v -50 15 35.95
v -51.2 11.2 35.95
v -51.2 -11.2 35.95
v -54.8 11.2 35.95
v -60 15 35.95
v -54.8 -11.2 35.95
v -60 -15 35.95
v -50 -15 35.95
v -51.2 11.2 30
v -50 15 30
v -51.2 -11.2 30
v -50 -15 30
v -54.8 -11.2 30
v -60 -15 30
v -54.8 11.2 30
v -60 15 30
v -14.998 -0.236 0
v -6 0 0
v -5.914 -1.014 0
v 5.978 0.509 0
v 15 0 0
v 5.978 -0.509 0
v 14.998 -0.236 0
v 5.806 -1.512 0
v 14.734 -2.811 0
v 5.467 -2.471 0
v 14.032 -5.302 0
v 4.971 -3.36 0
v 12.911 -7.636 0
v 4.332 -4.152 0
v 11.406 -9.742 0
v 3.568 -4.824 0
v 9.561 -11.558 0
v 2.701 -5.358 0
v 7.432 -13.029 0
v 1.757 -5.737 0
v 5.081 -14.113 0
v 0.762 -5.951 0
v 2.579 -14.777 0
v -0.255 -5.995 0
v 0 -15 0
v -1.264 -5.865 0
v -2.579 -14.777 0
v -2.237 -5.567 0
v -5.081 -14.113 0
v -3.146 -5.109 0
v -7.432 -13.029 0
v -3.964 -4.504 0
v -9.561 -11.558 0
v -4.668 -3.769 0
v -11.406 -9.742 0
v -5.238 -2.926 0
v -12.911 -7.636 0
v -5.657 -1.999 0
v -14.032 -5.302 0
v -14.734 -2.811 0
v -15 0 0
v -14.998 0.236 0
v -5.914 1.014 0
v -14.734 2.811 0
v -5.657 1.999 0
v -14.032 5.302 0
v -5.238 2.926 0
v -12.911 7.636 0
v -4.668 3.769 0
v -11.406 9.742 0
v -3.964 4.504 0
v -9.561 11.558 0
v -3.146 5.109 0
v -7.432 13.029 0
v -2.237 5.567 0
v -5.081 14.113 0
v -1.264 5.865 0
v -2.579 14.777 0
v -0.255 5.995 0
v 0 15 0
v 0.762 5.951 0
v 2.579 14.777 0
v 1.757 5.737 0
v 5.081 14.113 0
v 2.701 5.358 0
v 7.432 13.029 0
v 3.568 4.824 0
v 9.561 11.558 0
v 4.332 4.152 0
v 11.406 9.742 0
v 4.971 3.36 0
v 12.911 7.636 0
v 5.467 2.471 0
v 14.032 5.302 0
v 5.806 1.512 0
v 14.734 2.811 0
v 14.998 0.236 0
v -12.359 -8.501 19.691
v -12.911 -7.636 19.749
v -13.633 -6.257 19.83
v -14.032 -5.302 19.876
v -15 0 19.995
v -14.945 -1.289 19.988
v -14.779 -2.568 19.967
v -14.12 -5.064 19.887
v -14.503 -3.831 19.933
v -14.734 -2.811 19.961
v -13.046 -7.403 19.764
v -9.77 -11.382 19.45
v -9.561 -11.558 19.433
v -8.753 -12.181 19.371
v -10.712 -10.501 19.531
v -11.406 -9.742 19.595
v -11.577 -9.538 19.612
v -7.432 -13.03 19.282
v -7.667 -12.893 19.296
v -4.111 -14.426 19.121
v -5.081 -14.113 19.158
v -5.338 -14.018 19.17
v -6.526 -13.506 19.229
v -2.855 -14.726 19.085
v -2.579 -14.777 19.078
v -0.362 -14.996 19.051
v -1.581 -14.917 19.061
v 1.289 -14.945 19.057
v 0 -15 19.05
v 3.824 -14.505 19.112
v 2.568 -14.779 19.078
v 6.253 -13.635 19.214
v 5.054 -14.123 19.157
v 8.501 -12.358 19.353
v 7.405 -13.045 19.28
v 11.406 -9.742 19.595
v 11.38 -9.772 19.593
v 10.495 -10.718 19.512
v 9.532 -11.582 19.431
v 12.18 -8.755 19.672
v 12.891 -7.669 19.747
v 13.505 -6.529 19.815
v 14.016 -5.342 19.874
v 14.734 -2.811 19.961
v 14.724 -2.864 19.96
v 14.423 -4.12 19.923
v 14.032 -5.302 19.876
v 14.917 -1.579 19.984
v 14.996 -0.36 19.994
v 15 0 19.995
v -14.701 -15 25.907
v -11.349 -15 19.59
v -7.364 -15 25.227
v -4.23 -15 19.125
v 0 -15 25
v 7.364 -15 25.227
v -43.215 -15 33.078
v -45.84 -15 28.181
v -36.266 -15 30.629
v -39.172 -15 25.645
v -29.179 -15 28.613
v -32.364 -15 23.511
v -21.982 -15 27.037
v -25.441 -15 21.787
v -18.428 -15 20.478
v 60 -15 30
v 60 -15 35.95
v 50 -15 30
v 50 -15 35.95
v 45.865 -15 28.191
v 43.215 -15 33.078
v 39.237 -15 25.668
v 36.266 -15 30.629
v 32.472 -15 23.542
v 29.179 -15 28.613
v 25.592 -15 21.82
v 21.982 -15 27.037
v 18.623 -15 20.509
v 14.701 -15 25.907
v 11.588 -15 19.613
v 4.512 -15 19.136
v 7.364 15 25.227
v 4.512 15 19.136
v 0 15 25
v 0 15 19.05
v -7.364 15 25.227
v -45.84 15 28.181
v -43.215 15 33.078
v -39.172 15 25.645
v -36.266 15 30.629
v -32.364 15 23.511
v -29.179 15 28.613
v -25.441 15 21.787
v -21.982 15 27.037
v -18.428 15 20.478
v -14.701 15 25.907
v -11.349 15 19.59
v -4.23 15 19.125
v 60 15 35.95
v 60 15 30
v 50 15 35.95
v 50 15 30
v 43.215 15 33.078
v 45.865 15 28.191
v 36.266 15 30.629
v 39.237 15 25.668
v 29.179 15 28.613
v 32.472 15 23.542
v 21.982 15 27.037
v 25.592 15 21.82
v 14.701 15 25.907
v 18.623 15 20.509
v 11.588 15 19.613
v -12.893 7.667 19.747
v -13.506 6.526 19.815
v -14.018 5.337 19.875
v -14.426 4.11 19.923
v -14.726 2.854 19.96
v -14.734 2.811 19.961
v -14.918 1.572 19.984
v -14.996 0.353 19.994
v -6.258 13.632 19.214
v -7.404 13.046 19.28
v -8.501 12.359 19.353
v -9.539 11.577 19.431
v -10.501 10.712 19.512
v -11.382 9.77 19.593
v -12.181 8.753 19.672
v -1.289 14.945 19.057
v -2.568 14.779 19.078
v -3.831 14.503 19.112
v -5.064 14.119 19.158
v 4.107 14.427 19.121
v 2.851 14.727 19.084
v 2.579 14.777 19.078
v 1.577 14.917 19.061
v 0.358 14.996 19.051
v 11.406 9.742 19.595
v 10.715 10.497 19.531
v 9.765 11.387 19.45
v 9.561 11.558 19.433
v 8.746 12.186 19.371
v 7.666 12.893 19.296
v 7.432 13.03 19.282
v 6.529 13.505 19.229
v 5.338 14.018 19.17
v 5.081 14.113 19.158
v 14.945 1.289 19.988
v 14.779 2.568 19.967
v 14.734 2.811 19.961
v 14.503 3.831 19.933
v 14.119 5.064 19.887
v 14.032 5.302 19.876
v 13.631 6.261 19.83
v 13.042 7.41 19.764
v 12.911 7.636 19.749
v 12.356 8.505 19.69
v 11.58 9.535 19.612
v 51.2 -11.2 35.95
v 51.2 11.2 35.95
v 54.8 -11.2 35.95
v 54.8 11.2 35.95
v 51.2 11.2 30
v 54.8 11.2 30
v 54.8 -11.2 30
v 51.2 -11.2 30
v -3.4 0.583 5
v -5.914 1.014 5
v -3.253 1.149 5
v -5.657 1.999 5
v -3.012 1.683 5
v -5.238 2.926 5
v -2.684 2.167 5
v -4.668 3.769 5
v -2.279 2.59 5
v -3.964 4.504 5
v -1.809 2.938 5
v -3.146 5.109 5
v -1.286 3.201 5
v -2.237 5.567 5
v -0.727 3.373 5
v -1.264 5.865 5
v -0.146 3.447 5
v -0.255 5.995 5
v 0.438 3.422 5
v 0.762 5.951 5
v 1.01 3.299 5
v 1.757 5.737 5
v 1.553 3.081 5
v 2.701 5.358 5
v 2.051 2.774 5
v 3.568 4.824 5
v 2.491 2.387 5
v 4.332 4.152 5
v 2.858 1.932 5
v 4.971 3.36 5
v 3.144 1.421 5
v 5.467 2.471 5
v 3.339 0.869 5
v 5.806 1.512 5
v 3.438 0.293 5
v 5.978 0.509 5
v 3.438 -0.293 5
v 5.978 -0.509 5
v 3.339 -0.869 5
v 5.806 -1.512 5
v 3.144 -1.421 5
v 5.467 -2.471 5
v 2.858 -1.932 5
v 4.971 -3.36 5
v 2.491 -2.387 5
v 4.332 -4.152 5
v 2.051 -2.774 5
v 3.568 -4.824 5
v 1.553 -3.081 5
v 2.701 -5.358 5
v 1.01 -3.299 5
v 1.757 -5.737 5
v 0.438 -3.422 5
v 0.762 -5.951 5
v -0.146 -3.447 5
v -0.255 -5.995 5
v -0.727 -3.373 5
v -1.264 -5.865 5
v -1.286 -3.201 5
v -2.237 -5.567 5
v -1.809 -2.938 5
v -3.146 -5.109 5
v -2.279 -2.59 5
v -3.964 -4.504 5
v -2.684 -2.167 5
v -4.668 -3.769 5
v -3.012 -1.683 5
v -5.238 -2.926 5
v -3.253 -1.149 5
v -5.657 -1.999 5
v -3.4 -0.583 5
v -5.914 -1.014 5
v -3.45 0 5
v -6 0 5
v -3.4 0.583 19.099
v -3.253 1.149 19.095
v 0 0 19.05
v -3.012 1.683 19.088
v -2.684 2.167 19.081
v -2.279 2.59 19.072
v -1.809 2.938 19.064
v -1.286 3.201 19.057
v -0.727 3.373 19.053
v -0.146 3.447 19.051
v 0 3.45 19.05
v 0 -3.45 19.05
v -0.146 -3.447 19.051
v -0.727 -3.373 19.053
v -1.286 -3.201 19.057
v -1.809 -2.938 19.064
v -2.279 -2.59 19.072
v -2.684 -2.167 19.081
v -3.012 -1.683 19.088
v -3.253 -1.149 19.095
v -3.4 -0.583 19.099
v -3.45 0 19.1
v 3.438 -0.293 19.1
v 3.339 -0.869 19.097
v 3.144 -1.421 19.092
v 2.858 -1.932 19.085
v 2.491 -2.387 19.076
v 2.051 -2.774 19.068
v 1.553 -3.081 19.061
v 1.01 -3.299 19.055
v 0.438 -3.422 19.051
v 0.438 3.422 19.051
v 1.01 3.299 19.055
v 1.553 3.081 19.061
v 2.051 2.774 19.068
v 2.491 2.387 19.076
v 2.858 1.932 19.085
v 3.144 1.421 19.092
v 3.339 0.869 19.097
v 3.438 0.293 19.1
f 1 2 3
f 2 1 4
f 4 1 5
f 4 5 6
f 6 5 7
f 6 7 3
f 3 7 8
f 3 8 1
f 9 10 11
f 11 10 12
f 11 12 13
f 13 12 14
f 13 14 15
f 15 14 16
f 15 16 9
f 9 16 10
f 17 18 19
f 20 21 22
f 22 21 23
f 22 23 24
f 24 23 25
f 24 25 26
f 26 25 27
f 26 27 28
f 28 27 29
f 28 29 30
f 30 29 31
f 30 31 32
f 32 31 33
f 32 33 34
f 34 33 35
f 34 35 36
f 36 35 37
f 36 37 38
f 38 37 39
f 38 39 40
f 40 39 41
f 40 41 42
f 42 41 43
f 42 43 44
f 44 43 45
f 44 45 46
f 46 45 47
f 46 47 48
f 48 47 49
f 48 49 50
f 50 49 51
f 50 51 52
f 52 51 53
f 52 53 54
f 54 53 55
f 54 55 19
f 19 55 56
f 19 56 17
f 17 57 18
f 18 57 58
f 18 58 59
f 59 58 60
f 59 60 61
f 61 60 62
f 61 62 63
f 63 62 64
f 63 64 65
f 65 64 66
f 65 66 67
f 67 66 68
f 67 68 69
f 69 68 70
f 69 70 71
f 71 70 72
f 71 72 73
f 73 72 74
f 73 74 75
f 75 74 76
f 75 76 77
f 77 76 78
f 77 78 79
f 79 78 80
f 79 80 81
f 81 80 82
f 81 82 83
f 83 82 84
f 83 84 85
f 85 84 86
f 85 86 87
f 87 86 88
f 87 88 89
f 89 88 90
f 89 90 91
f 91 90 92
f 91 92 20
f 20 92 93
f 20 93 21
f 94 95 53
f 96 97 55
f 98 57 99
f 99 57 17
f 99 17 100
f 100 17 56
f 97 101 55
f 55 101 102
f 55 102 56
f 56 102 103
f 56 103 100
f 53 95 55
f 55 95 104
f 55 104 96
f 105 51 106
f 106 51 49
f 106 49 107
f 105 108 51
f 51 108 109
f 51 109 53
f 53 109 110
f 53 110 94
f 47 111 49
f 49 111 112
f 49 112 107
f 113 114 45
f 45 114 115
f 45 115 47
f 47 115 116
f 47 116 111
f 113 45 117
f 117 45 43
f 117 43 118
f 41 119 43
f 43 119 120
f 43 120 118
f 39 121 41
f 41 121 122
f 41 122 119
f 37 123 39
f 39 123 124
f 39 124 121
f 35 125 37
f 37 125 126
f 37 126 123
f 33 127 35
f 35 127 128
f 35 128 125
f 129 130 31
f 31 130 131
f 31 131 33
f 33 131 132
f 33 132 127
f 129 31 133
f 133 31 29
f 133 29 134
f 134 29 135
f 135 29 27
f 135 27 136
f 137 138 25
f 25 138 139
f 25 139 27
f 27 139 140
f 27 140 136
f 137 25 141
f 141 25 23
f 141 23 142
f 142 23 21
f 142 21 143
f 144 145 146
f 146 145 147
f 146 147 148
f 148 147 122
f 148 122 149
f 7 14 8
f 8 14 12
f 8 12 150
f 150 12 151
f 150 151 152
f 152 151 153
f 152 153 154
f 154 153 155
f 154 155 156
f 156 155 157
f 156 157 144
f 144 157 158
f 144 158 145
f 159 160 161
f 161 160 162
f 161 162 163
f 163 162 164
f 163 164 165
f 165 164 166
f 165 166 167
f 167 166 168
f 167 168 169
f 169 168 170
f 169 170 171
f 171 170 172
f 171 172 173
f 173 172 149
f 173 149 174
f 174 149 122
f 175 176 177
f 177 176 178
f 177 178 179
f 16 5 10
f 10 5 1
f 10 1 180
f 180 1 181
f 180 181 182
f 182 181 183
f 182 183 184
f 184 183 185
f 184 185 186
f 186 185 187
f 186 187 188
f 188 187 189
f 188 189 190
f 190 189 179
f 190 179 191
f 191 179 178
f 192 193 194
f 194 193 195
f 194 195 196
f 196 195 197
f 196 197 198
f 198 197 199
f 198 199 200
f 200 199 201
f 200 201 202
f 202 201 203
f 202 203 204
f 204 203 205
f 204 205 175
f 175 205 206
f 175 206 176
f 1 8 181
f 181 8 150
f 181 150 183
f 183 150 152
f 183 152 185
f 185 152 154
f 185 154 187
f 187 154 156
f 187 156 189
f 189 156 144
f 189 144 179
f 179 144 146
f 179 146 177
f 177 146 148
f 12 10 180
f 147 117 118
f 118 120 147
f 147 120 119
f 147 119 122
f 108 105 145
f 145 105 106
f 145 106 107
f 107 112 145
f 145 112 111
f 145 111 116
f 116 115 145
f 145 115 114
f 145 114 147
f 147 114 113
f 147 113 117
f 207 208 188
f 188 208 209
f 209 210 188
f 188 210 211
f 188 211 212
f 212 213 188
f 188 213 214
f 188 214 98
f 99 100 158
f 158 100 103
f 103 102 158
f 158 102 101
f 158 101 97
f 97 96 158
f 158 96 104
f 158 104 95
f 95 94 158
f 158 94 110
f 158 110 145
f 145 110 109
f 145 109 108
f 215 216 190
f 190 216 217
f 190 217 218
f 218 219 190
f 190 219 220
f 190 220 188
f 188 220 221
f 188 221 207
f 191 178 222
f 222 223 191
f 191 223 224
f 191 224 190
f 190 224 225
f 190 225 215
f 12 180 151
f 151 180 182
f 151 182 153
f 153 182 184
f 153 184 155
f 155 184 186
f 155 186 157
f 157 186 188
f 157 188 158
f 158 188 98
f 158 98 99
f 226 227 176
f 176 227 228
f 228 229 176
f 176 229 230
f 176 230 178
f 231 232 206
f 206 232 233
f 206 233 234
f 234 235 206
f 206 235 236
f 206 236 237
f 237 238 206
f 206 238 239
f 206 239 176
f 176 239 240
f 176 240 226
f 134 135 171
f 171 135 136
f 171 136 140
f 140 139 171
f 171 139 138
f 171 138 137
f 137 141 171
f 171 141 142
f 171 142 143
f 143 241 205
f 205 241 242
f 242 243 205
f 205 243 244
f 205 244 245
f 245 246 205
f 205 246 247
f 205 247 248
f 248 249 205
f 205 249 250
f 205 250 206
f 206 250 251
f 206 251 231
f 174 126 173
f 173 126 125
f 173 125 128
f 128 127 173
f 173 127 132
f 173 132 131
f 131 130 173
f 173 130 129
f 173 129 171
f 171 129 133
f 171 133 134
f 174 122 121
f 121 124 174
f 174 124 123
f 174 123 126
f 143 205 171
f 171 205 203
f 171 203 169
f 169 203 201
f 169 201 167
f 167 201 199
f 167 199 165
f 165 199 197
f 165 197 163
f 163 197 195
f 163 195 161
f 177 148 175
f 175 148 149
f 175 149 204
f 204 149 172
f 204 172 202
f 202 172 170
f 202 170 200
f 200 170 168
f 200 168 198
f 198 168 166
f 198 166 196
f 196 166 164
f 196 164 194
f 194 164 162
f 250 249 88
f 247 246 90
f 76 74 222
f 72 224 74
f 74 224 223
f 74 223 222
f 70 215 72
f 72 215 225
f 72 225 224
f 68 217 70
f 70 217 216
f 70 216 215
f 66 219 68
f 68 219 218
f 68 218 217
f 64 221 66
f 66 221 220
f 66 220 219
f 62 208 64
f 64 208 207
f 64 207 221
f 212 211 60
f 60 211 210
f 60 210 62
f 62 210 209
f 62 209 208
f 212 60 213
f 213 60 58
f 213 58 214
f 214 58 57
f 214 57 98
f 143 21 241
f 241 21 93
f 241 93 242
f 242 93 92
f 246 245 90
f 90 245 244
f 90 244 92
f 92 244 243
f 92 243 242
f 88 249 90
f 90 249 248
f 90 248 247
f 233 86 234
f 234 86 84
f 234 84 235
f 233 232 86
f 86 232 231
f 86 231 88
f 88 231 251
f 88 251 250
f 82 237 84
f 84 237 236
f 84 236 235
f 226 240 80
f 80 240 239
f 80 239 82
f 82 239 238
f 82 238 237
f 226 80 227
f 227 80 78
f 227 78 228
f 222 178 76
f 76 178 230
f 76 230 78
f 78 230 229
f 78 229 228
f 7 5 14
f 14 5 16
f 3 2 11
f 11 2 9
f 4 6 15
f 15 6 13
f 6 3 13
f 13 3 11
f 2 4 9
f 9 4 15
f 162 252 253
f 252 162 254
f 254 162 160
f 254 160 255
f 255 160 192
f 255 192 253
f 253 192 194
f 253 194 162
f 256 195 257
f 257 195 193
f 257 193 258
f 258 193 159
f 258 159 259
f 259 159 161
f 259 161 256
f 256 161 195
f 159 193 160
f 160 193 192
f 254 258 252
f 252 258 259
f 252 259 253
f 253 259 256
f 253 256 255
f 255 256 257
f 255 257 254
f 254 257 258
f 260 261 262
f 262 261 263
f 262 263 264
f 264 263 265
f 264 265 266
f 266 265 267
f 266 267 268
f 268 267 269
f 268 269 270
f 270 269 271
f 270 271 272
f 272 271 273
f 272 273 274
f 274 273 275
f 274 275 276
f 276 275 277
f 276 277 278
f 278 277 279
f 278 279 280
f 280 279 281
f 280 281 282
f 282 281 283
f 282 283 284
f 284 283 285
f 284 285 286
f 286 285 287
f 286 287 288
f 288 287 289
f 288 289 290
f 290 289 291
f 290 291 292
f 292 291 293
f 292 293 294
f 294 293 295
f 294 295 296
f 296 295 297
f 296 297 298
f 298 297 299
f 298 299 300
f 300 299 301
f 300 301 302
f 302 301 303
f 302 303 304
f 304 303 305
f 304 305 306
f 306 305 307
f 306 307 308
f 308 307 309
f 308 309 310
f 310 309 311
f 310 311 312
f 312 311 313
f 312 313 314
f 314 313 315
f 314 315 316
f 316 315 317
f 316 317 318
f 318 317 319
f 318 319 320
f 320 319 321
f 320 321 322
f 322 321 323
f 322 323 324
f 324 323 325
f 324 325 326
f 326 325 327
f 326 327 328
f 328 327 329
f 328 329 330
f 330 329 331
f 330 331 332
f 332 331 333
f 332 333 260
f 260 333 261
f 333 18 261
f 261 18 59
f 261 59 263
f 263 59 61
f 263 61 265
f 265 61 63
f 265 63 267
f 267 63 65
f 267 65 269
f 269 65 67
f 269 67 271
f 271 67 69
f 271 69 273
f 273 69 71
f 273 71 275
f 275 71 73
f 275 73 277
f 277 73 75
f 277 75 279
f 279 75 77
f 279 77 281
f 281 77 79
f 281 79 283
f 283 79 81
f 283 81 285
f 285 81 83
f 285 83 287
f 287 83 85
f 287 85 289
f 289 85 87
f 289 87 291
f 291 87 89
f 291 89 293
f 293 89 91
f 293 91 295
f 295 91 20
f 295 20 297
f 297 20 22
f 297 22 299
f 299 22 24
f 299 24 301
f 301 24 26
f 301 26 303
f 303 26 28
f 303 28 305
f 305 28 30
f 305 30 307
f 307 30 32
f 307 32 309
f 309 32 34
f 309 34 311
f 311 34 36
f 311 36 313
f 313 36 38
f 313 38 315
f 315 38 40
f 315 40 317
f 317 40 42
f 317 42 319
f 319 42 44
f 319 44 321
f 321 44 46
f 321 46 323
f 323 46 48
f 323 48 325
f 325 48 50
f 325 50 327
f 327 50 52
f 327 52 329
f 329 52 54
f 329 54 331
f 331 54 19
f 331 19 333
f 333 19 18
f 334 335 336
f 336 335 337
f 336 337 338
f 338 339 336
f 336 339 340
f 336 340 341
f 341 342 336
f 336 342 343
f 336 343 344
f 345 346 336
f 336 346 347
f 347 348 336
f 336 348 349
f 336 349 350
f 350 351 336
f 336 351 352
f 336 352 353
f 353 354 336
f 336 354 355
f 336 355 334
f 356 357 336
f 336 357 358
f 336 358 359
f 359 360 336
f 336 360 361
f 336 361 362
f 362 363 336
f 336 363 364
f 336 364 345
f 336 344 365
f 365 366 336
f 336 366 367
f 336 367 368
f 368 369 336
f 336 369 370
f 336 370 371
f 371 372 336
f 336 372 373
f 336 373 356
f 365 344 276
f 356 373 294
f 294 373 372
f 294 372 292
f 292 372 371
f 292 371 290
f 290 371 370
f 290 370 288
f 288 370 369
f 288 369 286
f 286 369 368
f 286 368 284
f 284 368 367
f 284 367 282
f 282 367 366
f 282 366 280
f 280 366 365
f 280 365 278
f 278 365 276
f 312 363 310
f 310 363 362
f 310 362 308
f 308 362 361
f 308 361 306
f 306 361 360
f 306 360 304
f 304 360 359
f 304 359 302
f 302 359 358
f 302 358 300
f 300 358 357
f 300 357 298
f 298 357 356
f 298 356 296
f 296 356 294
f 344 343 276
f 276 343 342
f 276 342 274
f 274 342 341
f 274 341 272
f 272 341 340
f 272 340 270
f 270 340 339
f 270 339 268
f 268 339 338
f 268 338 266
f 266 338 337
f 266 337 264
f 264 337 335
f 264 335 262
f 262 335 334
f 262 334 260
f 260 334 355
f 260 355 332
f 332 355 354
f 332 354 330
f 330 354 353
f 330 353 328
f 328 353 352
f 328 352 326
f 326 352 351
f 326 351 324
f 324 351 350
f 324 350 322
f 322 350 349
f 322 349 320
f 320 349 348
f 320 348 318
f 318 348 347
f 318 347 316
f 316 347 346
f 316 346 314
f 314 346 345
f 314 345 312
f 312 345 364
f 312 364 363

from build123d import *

# Parameters (mm, degrees)
BOSS_EXTRUDE1_START         = -15
BOSS_EXTRUDE1_DEPTH         = 30
BOSS_EXTRUDE1_START_2       = -12.7
BOSS_EXTRUDE1_2_OUTLINE_W   = 10
BOSS_EXTRUDE1_2_OUTLINE_H   = 5.949524979
BOSS_EXTRUDE1_2_DEPTH       = 25.4
BOSS_EXTRUDE1_3_OUTLINE_R   = 15
BOSS_EXTRUDE1_3_OUTLINE_R_2 = 4.55
BOSS_EXTRUDE1_3_DEPTH       = 19.994560744
SKETCH4_W                   = 3.6
SKETCH4_H                   = 22.4
CUT_EXTRUDE1_DEPTH          = 6
BOSS_EXTRUDE2_REACH         = 73.536
BOSS_EXTRUDE2_END_RADIUS    = 119.634966004
SKETCH9_R                   = 6.57997386
SKETCH9_R_2                 = 3.45
SKETCH10_W                  = 5.949524979
SKETCH10_H                  = 2.3
BOSS_EXTRUDE3_DEPTH         = 10
SKETCH11_W                  = 5.949524979
SKETCH11_H                  = 30
BOSS_EXTRUDE4_DEPTH         = 10
SKETCH13_W                  = 3.6
SKETCH13_H                  = 22.4
CUT_EXTRUDE2_DEPTH          = 10
SKETCH15_R                  = 6
CUT_EXTRUDE3_DEPTH          = 5


with BuildPart() as part:
    # Boss-Extrude1: read off the stored shape, not the designer's step
    # Boss-Extrude1 outline → Boss-Extrude1 (new body)
    with BuildSketch(Plane(origin=(0, 0, 0), x_dir=(1, 0, 0), z_dir=(0, 1, 0)).offset(BOSS_EXTRUDE1_START)):
        with BuildLine():
            Line((-50, -30), (-50, -35.949524979))
            ThreePointArc((-50, -35.949524979), (-25.592440765, -27.769436157), (0, -25))
            ThreePointArc((0, -25), (25.592440765, -27.769436157), (50, -35.949524979))
            Line((50, -35.949524979), (50, -30))
            ThreePointArc((50, -30), (27.810549479, -22.327809439), (4.550000287, -19.13702996))
            ThreePointArc((4.550000287, -19.13702996), (2.275411741, -19.072115713), (0, -19.050475021))
            ThreePointArc((0, -19.050475021), (-25.592440765, -21.819911178), (-50, -30))
        make_face()
    extrude(amount=BOSS_EXTRUDE1_DEPTH)

    # Boss-Extrude1 2 outline → Boss-Extrude1 2 (add)
    with BuildSketch(Plane(origin=(0, 0, 0), x_dir=(1, 0, 0), z_dir=(0, 1, 0)).offset(BOSS_EXTRUDE1_START_2)):
        with Locations((-55, -32.97476249)):
            Rectangle(BOSS_EXTRUDE1_2_OUTLINE_W, BOSS_EXTRUDE1_2_OUTLINE_H)
    extrude(amount=BOSS_EXTRUDE1_2_DEPTH)

    # Boss-Extrude1 3 outline → Boss-Extrude1 3 (add)
    with BuildSketch(Plane.XY):
        Circle(BOSS_EXTRUDE1_3_OUTLINE_R)
        Circle(BOSS_EXTRUDE1_3_OUTLINE_R_2, mode=Mode.SUBTRACT)
    extrude(amount=BOSS_EXTRUDE1_3_DEPTH)

    # Sketch4 → Cut-Extrude1 (cut)
    with BuildSketch(Plane.XY.offset(35.949524979)):
        with Locations((-53, 0)):
            Rectangle(SKETCH4_W, SKETCH4_H)
    extrude(amount=-CUT_EXTRUDE1_DEPTH, mode=Mode.SUBTRACT)

    # Boss-Extrude2: up to this cylinder (the profile starts outside it)
    boss_extrude2_end = Plane(origin=(0, 0, 138.685441025), z_dir=(0, -1, 0)) * Cylinder(BOSS_EXTRUDE2_END_RADIUS, 387.341932008, mode=Mode.PRIVATE)
    # Sketch9 → Boss-Extrude2 (add, up to the surface)
    with BuildSketch(Plane(origin=(0, 0, 0), x_dir=(-1, 0, 0), z_dir=(0, 0, -1)), mode=Mode.PRIVATE) as boss_extrude2_sk1:
        Circle(SKETCH9_R)
        Circle(SKETCH9_R_2, mode=Mode.SUBTRACT)
    boss_extrude2_tool1 = extrude(boss_extrude2_sk1.sketch, amount=-BOSS_EXTRUDE2_REACH, mode=Mode.PRIVATE) - boss_extrude2_end
    add(boss_extrude2_tool1.solids().sort_by_distance((6.393864, 0, 0))[0])

    # Sketch10 → Boss-Extrude3 (add)
    with BuildSketch(Plane.ZY.offset(50)):
        with Locations((32.97476249, 13.85)):
            Rectangle(SKETCH10_W, SKETCH10_H)
        with Locations((32.97476249, -13.85)):
            Rectangle(SKETCH10_W, SKETCH10_H)
    extrude(amount=BOSS_EXTRUDE3_DEPTH)

    # Sketch11 → Boss-Extrude4 (add)
    with BuildSketch(Plane(origin=(50, 0, 0), x_dir=(0, 0, -1), z_dir=(1, 0, 0))):
        with Locations((-32.97476249, 0)):
            Rectangle(SKETCH11_W, SKETCH11_H)
    extrude(amount=BOSS_EXTRUDE4_DEPTH)

    # Sketch13 → Cut-Extrude2 (cut)
    with BuildSketch(Plane.XY.offset(35.949524979)):
        with Locations((53, 0)):
            Rectangle(SKETCH13_W, SKETCH13_H)
    extrude(amount=-CUT_EXTRUDE2_DEPTH, mode=Mode.SUBTRACT)

    # Sketch15 → Cut-Extrude3 (cut)
    with BuildSketch(Plane(origin=(0, 0, 0), x_dir=(-1, 0, 0), z_dir=(0, 0, -1))):
        Circle(SKETCH15_R)
    extrude(amount=-CUT_EXTRUDE3_DEPTH, mode=Mode.SUBTRACT)


solid = part.part
